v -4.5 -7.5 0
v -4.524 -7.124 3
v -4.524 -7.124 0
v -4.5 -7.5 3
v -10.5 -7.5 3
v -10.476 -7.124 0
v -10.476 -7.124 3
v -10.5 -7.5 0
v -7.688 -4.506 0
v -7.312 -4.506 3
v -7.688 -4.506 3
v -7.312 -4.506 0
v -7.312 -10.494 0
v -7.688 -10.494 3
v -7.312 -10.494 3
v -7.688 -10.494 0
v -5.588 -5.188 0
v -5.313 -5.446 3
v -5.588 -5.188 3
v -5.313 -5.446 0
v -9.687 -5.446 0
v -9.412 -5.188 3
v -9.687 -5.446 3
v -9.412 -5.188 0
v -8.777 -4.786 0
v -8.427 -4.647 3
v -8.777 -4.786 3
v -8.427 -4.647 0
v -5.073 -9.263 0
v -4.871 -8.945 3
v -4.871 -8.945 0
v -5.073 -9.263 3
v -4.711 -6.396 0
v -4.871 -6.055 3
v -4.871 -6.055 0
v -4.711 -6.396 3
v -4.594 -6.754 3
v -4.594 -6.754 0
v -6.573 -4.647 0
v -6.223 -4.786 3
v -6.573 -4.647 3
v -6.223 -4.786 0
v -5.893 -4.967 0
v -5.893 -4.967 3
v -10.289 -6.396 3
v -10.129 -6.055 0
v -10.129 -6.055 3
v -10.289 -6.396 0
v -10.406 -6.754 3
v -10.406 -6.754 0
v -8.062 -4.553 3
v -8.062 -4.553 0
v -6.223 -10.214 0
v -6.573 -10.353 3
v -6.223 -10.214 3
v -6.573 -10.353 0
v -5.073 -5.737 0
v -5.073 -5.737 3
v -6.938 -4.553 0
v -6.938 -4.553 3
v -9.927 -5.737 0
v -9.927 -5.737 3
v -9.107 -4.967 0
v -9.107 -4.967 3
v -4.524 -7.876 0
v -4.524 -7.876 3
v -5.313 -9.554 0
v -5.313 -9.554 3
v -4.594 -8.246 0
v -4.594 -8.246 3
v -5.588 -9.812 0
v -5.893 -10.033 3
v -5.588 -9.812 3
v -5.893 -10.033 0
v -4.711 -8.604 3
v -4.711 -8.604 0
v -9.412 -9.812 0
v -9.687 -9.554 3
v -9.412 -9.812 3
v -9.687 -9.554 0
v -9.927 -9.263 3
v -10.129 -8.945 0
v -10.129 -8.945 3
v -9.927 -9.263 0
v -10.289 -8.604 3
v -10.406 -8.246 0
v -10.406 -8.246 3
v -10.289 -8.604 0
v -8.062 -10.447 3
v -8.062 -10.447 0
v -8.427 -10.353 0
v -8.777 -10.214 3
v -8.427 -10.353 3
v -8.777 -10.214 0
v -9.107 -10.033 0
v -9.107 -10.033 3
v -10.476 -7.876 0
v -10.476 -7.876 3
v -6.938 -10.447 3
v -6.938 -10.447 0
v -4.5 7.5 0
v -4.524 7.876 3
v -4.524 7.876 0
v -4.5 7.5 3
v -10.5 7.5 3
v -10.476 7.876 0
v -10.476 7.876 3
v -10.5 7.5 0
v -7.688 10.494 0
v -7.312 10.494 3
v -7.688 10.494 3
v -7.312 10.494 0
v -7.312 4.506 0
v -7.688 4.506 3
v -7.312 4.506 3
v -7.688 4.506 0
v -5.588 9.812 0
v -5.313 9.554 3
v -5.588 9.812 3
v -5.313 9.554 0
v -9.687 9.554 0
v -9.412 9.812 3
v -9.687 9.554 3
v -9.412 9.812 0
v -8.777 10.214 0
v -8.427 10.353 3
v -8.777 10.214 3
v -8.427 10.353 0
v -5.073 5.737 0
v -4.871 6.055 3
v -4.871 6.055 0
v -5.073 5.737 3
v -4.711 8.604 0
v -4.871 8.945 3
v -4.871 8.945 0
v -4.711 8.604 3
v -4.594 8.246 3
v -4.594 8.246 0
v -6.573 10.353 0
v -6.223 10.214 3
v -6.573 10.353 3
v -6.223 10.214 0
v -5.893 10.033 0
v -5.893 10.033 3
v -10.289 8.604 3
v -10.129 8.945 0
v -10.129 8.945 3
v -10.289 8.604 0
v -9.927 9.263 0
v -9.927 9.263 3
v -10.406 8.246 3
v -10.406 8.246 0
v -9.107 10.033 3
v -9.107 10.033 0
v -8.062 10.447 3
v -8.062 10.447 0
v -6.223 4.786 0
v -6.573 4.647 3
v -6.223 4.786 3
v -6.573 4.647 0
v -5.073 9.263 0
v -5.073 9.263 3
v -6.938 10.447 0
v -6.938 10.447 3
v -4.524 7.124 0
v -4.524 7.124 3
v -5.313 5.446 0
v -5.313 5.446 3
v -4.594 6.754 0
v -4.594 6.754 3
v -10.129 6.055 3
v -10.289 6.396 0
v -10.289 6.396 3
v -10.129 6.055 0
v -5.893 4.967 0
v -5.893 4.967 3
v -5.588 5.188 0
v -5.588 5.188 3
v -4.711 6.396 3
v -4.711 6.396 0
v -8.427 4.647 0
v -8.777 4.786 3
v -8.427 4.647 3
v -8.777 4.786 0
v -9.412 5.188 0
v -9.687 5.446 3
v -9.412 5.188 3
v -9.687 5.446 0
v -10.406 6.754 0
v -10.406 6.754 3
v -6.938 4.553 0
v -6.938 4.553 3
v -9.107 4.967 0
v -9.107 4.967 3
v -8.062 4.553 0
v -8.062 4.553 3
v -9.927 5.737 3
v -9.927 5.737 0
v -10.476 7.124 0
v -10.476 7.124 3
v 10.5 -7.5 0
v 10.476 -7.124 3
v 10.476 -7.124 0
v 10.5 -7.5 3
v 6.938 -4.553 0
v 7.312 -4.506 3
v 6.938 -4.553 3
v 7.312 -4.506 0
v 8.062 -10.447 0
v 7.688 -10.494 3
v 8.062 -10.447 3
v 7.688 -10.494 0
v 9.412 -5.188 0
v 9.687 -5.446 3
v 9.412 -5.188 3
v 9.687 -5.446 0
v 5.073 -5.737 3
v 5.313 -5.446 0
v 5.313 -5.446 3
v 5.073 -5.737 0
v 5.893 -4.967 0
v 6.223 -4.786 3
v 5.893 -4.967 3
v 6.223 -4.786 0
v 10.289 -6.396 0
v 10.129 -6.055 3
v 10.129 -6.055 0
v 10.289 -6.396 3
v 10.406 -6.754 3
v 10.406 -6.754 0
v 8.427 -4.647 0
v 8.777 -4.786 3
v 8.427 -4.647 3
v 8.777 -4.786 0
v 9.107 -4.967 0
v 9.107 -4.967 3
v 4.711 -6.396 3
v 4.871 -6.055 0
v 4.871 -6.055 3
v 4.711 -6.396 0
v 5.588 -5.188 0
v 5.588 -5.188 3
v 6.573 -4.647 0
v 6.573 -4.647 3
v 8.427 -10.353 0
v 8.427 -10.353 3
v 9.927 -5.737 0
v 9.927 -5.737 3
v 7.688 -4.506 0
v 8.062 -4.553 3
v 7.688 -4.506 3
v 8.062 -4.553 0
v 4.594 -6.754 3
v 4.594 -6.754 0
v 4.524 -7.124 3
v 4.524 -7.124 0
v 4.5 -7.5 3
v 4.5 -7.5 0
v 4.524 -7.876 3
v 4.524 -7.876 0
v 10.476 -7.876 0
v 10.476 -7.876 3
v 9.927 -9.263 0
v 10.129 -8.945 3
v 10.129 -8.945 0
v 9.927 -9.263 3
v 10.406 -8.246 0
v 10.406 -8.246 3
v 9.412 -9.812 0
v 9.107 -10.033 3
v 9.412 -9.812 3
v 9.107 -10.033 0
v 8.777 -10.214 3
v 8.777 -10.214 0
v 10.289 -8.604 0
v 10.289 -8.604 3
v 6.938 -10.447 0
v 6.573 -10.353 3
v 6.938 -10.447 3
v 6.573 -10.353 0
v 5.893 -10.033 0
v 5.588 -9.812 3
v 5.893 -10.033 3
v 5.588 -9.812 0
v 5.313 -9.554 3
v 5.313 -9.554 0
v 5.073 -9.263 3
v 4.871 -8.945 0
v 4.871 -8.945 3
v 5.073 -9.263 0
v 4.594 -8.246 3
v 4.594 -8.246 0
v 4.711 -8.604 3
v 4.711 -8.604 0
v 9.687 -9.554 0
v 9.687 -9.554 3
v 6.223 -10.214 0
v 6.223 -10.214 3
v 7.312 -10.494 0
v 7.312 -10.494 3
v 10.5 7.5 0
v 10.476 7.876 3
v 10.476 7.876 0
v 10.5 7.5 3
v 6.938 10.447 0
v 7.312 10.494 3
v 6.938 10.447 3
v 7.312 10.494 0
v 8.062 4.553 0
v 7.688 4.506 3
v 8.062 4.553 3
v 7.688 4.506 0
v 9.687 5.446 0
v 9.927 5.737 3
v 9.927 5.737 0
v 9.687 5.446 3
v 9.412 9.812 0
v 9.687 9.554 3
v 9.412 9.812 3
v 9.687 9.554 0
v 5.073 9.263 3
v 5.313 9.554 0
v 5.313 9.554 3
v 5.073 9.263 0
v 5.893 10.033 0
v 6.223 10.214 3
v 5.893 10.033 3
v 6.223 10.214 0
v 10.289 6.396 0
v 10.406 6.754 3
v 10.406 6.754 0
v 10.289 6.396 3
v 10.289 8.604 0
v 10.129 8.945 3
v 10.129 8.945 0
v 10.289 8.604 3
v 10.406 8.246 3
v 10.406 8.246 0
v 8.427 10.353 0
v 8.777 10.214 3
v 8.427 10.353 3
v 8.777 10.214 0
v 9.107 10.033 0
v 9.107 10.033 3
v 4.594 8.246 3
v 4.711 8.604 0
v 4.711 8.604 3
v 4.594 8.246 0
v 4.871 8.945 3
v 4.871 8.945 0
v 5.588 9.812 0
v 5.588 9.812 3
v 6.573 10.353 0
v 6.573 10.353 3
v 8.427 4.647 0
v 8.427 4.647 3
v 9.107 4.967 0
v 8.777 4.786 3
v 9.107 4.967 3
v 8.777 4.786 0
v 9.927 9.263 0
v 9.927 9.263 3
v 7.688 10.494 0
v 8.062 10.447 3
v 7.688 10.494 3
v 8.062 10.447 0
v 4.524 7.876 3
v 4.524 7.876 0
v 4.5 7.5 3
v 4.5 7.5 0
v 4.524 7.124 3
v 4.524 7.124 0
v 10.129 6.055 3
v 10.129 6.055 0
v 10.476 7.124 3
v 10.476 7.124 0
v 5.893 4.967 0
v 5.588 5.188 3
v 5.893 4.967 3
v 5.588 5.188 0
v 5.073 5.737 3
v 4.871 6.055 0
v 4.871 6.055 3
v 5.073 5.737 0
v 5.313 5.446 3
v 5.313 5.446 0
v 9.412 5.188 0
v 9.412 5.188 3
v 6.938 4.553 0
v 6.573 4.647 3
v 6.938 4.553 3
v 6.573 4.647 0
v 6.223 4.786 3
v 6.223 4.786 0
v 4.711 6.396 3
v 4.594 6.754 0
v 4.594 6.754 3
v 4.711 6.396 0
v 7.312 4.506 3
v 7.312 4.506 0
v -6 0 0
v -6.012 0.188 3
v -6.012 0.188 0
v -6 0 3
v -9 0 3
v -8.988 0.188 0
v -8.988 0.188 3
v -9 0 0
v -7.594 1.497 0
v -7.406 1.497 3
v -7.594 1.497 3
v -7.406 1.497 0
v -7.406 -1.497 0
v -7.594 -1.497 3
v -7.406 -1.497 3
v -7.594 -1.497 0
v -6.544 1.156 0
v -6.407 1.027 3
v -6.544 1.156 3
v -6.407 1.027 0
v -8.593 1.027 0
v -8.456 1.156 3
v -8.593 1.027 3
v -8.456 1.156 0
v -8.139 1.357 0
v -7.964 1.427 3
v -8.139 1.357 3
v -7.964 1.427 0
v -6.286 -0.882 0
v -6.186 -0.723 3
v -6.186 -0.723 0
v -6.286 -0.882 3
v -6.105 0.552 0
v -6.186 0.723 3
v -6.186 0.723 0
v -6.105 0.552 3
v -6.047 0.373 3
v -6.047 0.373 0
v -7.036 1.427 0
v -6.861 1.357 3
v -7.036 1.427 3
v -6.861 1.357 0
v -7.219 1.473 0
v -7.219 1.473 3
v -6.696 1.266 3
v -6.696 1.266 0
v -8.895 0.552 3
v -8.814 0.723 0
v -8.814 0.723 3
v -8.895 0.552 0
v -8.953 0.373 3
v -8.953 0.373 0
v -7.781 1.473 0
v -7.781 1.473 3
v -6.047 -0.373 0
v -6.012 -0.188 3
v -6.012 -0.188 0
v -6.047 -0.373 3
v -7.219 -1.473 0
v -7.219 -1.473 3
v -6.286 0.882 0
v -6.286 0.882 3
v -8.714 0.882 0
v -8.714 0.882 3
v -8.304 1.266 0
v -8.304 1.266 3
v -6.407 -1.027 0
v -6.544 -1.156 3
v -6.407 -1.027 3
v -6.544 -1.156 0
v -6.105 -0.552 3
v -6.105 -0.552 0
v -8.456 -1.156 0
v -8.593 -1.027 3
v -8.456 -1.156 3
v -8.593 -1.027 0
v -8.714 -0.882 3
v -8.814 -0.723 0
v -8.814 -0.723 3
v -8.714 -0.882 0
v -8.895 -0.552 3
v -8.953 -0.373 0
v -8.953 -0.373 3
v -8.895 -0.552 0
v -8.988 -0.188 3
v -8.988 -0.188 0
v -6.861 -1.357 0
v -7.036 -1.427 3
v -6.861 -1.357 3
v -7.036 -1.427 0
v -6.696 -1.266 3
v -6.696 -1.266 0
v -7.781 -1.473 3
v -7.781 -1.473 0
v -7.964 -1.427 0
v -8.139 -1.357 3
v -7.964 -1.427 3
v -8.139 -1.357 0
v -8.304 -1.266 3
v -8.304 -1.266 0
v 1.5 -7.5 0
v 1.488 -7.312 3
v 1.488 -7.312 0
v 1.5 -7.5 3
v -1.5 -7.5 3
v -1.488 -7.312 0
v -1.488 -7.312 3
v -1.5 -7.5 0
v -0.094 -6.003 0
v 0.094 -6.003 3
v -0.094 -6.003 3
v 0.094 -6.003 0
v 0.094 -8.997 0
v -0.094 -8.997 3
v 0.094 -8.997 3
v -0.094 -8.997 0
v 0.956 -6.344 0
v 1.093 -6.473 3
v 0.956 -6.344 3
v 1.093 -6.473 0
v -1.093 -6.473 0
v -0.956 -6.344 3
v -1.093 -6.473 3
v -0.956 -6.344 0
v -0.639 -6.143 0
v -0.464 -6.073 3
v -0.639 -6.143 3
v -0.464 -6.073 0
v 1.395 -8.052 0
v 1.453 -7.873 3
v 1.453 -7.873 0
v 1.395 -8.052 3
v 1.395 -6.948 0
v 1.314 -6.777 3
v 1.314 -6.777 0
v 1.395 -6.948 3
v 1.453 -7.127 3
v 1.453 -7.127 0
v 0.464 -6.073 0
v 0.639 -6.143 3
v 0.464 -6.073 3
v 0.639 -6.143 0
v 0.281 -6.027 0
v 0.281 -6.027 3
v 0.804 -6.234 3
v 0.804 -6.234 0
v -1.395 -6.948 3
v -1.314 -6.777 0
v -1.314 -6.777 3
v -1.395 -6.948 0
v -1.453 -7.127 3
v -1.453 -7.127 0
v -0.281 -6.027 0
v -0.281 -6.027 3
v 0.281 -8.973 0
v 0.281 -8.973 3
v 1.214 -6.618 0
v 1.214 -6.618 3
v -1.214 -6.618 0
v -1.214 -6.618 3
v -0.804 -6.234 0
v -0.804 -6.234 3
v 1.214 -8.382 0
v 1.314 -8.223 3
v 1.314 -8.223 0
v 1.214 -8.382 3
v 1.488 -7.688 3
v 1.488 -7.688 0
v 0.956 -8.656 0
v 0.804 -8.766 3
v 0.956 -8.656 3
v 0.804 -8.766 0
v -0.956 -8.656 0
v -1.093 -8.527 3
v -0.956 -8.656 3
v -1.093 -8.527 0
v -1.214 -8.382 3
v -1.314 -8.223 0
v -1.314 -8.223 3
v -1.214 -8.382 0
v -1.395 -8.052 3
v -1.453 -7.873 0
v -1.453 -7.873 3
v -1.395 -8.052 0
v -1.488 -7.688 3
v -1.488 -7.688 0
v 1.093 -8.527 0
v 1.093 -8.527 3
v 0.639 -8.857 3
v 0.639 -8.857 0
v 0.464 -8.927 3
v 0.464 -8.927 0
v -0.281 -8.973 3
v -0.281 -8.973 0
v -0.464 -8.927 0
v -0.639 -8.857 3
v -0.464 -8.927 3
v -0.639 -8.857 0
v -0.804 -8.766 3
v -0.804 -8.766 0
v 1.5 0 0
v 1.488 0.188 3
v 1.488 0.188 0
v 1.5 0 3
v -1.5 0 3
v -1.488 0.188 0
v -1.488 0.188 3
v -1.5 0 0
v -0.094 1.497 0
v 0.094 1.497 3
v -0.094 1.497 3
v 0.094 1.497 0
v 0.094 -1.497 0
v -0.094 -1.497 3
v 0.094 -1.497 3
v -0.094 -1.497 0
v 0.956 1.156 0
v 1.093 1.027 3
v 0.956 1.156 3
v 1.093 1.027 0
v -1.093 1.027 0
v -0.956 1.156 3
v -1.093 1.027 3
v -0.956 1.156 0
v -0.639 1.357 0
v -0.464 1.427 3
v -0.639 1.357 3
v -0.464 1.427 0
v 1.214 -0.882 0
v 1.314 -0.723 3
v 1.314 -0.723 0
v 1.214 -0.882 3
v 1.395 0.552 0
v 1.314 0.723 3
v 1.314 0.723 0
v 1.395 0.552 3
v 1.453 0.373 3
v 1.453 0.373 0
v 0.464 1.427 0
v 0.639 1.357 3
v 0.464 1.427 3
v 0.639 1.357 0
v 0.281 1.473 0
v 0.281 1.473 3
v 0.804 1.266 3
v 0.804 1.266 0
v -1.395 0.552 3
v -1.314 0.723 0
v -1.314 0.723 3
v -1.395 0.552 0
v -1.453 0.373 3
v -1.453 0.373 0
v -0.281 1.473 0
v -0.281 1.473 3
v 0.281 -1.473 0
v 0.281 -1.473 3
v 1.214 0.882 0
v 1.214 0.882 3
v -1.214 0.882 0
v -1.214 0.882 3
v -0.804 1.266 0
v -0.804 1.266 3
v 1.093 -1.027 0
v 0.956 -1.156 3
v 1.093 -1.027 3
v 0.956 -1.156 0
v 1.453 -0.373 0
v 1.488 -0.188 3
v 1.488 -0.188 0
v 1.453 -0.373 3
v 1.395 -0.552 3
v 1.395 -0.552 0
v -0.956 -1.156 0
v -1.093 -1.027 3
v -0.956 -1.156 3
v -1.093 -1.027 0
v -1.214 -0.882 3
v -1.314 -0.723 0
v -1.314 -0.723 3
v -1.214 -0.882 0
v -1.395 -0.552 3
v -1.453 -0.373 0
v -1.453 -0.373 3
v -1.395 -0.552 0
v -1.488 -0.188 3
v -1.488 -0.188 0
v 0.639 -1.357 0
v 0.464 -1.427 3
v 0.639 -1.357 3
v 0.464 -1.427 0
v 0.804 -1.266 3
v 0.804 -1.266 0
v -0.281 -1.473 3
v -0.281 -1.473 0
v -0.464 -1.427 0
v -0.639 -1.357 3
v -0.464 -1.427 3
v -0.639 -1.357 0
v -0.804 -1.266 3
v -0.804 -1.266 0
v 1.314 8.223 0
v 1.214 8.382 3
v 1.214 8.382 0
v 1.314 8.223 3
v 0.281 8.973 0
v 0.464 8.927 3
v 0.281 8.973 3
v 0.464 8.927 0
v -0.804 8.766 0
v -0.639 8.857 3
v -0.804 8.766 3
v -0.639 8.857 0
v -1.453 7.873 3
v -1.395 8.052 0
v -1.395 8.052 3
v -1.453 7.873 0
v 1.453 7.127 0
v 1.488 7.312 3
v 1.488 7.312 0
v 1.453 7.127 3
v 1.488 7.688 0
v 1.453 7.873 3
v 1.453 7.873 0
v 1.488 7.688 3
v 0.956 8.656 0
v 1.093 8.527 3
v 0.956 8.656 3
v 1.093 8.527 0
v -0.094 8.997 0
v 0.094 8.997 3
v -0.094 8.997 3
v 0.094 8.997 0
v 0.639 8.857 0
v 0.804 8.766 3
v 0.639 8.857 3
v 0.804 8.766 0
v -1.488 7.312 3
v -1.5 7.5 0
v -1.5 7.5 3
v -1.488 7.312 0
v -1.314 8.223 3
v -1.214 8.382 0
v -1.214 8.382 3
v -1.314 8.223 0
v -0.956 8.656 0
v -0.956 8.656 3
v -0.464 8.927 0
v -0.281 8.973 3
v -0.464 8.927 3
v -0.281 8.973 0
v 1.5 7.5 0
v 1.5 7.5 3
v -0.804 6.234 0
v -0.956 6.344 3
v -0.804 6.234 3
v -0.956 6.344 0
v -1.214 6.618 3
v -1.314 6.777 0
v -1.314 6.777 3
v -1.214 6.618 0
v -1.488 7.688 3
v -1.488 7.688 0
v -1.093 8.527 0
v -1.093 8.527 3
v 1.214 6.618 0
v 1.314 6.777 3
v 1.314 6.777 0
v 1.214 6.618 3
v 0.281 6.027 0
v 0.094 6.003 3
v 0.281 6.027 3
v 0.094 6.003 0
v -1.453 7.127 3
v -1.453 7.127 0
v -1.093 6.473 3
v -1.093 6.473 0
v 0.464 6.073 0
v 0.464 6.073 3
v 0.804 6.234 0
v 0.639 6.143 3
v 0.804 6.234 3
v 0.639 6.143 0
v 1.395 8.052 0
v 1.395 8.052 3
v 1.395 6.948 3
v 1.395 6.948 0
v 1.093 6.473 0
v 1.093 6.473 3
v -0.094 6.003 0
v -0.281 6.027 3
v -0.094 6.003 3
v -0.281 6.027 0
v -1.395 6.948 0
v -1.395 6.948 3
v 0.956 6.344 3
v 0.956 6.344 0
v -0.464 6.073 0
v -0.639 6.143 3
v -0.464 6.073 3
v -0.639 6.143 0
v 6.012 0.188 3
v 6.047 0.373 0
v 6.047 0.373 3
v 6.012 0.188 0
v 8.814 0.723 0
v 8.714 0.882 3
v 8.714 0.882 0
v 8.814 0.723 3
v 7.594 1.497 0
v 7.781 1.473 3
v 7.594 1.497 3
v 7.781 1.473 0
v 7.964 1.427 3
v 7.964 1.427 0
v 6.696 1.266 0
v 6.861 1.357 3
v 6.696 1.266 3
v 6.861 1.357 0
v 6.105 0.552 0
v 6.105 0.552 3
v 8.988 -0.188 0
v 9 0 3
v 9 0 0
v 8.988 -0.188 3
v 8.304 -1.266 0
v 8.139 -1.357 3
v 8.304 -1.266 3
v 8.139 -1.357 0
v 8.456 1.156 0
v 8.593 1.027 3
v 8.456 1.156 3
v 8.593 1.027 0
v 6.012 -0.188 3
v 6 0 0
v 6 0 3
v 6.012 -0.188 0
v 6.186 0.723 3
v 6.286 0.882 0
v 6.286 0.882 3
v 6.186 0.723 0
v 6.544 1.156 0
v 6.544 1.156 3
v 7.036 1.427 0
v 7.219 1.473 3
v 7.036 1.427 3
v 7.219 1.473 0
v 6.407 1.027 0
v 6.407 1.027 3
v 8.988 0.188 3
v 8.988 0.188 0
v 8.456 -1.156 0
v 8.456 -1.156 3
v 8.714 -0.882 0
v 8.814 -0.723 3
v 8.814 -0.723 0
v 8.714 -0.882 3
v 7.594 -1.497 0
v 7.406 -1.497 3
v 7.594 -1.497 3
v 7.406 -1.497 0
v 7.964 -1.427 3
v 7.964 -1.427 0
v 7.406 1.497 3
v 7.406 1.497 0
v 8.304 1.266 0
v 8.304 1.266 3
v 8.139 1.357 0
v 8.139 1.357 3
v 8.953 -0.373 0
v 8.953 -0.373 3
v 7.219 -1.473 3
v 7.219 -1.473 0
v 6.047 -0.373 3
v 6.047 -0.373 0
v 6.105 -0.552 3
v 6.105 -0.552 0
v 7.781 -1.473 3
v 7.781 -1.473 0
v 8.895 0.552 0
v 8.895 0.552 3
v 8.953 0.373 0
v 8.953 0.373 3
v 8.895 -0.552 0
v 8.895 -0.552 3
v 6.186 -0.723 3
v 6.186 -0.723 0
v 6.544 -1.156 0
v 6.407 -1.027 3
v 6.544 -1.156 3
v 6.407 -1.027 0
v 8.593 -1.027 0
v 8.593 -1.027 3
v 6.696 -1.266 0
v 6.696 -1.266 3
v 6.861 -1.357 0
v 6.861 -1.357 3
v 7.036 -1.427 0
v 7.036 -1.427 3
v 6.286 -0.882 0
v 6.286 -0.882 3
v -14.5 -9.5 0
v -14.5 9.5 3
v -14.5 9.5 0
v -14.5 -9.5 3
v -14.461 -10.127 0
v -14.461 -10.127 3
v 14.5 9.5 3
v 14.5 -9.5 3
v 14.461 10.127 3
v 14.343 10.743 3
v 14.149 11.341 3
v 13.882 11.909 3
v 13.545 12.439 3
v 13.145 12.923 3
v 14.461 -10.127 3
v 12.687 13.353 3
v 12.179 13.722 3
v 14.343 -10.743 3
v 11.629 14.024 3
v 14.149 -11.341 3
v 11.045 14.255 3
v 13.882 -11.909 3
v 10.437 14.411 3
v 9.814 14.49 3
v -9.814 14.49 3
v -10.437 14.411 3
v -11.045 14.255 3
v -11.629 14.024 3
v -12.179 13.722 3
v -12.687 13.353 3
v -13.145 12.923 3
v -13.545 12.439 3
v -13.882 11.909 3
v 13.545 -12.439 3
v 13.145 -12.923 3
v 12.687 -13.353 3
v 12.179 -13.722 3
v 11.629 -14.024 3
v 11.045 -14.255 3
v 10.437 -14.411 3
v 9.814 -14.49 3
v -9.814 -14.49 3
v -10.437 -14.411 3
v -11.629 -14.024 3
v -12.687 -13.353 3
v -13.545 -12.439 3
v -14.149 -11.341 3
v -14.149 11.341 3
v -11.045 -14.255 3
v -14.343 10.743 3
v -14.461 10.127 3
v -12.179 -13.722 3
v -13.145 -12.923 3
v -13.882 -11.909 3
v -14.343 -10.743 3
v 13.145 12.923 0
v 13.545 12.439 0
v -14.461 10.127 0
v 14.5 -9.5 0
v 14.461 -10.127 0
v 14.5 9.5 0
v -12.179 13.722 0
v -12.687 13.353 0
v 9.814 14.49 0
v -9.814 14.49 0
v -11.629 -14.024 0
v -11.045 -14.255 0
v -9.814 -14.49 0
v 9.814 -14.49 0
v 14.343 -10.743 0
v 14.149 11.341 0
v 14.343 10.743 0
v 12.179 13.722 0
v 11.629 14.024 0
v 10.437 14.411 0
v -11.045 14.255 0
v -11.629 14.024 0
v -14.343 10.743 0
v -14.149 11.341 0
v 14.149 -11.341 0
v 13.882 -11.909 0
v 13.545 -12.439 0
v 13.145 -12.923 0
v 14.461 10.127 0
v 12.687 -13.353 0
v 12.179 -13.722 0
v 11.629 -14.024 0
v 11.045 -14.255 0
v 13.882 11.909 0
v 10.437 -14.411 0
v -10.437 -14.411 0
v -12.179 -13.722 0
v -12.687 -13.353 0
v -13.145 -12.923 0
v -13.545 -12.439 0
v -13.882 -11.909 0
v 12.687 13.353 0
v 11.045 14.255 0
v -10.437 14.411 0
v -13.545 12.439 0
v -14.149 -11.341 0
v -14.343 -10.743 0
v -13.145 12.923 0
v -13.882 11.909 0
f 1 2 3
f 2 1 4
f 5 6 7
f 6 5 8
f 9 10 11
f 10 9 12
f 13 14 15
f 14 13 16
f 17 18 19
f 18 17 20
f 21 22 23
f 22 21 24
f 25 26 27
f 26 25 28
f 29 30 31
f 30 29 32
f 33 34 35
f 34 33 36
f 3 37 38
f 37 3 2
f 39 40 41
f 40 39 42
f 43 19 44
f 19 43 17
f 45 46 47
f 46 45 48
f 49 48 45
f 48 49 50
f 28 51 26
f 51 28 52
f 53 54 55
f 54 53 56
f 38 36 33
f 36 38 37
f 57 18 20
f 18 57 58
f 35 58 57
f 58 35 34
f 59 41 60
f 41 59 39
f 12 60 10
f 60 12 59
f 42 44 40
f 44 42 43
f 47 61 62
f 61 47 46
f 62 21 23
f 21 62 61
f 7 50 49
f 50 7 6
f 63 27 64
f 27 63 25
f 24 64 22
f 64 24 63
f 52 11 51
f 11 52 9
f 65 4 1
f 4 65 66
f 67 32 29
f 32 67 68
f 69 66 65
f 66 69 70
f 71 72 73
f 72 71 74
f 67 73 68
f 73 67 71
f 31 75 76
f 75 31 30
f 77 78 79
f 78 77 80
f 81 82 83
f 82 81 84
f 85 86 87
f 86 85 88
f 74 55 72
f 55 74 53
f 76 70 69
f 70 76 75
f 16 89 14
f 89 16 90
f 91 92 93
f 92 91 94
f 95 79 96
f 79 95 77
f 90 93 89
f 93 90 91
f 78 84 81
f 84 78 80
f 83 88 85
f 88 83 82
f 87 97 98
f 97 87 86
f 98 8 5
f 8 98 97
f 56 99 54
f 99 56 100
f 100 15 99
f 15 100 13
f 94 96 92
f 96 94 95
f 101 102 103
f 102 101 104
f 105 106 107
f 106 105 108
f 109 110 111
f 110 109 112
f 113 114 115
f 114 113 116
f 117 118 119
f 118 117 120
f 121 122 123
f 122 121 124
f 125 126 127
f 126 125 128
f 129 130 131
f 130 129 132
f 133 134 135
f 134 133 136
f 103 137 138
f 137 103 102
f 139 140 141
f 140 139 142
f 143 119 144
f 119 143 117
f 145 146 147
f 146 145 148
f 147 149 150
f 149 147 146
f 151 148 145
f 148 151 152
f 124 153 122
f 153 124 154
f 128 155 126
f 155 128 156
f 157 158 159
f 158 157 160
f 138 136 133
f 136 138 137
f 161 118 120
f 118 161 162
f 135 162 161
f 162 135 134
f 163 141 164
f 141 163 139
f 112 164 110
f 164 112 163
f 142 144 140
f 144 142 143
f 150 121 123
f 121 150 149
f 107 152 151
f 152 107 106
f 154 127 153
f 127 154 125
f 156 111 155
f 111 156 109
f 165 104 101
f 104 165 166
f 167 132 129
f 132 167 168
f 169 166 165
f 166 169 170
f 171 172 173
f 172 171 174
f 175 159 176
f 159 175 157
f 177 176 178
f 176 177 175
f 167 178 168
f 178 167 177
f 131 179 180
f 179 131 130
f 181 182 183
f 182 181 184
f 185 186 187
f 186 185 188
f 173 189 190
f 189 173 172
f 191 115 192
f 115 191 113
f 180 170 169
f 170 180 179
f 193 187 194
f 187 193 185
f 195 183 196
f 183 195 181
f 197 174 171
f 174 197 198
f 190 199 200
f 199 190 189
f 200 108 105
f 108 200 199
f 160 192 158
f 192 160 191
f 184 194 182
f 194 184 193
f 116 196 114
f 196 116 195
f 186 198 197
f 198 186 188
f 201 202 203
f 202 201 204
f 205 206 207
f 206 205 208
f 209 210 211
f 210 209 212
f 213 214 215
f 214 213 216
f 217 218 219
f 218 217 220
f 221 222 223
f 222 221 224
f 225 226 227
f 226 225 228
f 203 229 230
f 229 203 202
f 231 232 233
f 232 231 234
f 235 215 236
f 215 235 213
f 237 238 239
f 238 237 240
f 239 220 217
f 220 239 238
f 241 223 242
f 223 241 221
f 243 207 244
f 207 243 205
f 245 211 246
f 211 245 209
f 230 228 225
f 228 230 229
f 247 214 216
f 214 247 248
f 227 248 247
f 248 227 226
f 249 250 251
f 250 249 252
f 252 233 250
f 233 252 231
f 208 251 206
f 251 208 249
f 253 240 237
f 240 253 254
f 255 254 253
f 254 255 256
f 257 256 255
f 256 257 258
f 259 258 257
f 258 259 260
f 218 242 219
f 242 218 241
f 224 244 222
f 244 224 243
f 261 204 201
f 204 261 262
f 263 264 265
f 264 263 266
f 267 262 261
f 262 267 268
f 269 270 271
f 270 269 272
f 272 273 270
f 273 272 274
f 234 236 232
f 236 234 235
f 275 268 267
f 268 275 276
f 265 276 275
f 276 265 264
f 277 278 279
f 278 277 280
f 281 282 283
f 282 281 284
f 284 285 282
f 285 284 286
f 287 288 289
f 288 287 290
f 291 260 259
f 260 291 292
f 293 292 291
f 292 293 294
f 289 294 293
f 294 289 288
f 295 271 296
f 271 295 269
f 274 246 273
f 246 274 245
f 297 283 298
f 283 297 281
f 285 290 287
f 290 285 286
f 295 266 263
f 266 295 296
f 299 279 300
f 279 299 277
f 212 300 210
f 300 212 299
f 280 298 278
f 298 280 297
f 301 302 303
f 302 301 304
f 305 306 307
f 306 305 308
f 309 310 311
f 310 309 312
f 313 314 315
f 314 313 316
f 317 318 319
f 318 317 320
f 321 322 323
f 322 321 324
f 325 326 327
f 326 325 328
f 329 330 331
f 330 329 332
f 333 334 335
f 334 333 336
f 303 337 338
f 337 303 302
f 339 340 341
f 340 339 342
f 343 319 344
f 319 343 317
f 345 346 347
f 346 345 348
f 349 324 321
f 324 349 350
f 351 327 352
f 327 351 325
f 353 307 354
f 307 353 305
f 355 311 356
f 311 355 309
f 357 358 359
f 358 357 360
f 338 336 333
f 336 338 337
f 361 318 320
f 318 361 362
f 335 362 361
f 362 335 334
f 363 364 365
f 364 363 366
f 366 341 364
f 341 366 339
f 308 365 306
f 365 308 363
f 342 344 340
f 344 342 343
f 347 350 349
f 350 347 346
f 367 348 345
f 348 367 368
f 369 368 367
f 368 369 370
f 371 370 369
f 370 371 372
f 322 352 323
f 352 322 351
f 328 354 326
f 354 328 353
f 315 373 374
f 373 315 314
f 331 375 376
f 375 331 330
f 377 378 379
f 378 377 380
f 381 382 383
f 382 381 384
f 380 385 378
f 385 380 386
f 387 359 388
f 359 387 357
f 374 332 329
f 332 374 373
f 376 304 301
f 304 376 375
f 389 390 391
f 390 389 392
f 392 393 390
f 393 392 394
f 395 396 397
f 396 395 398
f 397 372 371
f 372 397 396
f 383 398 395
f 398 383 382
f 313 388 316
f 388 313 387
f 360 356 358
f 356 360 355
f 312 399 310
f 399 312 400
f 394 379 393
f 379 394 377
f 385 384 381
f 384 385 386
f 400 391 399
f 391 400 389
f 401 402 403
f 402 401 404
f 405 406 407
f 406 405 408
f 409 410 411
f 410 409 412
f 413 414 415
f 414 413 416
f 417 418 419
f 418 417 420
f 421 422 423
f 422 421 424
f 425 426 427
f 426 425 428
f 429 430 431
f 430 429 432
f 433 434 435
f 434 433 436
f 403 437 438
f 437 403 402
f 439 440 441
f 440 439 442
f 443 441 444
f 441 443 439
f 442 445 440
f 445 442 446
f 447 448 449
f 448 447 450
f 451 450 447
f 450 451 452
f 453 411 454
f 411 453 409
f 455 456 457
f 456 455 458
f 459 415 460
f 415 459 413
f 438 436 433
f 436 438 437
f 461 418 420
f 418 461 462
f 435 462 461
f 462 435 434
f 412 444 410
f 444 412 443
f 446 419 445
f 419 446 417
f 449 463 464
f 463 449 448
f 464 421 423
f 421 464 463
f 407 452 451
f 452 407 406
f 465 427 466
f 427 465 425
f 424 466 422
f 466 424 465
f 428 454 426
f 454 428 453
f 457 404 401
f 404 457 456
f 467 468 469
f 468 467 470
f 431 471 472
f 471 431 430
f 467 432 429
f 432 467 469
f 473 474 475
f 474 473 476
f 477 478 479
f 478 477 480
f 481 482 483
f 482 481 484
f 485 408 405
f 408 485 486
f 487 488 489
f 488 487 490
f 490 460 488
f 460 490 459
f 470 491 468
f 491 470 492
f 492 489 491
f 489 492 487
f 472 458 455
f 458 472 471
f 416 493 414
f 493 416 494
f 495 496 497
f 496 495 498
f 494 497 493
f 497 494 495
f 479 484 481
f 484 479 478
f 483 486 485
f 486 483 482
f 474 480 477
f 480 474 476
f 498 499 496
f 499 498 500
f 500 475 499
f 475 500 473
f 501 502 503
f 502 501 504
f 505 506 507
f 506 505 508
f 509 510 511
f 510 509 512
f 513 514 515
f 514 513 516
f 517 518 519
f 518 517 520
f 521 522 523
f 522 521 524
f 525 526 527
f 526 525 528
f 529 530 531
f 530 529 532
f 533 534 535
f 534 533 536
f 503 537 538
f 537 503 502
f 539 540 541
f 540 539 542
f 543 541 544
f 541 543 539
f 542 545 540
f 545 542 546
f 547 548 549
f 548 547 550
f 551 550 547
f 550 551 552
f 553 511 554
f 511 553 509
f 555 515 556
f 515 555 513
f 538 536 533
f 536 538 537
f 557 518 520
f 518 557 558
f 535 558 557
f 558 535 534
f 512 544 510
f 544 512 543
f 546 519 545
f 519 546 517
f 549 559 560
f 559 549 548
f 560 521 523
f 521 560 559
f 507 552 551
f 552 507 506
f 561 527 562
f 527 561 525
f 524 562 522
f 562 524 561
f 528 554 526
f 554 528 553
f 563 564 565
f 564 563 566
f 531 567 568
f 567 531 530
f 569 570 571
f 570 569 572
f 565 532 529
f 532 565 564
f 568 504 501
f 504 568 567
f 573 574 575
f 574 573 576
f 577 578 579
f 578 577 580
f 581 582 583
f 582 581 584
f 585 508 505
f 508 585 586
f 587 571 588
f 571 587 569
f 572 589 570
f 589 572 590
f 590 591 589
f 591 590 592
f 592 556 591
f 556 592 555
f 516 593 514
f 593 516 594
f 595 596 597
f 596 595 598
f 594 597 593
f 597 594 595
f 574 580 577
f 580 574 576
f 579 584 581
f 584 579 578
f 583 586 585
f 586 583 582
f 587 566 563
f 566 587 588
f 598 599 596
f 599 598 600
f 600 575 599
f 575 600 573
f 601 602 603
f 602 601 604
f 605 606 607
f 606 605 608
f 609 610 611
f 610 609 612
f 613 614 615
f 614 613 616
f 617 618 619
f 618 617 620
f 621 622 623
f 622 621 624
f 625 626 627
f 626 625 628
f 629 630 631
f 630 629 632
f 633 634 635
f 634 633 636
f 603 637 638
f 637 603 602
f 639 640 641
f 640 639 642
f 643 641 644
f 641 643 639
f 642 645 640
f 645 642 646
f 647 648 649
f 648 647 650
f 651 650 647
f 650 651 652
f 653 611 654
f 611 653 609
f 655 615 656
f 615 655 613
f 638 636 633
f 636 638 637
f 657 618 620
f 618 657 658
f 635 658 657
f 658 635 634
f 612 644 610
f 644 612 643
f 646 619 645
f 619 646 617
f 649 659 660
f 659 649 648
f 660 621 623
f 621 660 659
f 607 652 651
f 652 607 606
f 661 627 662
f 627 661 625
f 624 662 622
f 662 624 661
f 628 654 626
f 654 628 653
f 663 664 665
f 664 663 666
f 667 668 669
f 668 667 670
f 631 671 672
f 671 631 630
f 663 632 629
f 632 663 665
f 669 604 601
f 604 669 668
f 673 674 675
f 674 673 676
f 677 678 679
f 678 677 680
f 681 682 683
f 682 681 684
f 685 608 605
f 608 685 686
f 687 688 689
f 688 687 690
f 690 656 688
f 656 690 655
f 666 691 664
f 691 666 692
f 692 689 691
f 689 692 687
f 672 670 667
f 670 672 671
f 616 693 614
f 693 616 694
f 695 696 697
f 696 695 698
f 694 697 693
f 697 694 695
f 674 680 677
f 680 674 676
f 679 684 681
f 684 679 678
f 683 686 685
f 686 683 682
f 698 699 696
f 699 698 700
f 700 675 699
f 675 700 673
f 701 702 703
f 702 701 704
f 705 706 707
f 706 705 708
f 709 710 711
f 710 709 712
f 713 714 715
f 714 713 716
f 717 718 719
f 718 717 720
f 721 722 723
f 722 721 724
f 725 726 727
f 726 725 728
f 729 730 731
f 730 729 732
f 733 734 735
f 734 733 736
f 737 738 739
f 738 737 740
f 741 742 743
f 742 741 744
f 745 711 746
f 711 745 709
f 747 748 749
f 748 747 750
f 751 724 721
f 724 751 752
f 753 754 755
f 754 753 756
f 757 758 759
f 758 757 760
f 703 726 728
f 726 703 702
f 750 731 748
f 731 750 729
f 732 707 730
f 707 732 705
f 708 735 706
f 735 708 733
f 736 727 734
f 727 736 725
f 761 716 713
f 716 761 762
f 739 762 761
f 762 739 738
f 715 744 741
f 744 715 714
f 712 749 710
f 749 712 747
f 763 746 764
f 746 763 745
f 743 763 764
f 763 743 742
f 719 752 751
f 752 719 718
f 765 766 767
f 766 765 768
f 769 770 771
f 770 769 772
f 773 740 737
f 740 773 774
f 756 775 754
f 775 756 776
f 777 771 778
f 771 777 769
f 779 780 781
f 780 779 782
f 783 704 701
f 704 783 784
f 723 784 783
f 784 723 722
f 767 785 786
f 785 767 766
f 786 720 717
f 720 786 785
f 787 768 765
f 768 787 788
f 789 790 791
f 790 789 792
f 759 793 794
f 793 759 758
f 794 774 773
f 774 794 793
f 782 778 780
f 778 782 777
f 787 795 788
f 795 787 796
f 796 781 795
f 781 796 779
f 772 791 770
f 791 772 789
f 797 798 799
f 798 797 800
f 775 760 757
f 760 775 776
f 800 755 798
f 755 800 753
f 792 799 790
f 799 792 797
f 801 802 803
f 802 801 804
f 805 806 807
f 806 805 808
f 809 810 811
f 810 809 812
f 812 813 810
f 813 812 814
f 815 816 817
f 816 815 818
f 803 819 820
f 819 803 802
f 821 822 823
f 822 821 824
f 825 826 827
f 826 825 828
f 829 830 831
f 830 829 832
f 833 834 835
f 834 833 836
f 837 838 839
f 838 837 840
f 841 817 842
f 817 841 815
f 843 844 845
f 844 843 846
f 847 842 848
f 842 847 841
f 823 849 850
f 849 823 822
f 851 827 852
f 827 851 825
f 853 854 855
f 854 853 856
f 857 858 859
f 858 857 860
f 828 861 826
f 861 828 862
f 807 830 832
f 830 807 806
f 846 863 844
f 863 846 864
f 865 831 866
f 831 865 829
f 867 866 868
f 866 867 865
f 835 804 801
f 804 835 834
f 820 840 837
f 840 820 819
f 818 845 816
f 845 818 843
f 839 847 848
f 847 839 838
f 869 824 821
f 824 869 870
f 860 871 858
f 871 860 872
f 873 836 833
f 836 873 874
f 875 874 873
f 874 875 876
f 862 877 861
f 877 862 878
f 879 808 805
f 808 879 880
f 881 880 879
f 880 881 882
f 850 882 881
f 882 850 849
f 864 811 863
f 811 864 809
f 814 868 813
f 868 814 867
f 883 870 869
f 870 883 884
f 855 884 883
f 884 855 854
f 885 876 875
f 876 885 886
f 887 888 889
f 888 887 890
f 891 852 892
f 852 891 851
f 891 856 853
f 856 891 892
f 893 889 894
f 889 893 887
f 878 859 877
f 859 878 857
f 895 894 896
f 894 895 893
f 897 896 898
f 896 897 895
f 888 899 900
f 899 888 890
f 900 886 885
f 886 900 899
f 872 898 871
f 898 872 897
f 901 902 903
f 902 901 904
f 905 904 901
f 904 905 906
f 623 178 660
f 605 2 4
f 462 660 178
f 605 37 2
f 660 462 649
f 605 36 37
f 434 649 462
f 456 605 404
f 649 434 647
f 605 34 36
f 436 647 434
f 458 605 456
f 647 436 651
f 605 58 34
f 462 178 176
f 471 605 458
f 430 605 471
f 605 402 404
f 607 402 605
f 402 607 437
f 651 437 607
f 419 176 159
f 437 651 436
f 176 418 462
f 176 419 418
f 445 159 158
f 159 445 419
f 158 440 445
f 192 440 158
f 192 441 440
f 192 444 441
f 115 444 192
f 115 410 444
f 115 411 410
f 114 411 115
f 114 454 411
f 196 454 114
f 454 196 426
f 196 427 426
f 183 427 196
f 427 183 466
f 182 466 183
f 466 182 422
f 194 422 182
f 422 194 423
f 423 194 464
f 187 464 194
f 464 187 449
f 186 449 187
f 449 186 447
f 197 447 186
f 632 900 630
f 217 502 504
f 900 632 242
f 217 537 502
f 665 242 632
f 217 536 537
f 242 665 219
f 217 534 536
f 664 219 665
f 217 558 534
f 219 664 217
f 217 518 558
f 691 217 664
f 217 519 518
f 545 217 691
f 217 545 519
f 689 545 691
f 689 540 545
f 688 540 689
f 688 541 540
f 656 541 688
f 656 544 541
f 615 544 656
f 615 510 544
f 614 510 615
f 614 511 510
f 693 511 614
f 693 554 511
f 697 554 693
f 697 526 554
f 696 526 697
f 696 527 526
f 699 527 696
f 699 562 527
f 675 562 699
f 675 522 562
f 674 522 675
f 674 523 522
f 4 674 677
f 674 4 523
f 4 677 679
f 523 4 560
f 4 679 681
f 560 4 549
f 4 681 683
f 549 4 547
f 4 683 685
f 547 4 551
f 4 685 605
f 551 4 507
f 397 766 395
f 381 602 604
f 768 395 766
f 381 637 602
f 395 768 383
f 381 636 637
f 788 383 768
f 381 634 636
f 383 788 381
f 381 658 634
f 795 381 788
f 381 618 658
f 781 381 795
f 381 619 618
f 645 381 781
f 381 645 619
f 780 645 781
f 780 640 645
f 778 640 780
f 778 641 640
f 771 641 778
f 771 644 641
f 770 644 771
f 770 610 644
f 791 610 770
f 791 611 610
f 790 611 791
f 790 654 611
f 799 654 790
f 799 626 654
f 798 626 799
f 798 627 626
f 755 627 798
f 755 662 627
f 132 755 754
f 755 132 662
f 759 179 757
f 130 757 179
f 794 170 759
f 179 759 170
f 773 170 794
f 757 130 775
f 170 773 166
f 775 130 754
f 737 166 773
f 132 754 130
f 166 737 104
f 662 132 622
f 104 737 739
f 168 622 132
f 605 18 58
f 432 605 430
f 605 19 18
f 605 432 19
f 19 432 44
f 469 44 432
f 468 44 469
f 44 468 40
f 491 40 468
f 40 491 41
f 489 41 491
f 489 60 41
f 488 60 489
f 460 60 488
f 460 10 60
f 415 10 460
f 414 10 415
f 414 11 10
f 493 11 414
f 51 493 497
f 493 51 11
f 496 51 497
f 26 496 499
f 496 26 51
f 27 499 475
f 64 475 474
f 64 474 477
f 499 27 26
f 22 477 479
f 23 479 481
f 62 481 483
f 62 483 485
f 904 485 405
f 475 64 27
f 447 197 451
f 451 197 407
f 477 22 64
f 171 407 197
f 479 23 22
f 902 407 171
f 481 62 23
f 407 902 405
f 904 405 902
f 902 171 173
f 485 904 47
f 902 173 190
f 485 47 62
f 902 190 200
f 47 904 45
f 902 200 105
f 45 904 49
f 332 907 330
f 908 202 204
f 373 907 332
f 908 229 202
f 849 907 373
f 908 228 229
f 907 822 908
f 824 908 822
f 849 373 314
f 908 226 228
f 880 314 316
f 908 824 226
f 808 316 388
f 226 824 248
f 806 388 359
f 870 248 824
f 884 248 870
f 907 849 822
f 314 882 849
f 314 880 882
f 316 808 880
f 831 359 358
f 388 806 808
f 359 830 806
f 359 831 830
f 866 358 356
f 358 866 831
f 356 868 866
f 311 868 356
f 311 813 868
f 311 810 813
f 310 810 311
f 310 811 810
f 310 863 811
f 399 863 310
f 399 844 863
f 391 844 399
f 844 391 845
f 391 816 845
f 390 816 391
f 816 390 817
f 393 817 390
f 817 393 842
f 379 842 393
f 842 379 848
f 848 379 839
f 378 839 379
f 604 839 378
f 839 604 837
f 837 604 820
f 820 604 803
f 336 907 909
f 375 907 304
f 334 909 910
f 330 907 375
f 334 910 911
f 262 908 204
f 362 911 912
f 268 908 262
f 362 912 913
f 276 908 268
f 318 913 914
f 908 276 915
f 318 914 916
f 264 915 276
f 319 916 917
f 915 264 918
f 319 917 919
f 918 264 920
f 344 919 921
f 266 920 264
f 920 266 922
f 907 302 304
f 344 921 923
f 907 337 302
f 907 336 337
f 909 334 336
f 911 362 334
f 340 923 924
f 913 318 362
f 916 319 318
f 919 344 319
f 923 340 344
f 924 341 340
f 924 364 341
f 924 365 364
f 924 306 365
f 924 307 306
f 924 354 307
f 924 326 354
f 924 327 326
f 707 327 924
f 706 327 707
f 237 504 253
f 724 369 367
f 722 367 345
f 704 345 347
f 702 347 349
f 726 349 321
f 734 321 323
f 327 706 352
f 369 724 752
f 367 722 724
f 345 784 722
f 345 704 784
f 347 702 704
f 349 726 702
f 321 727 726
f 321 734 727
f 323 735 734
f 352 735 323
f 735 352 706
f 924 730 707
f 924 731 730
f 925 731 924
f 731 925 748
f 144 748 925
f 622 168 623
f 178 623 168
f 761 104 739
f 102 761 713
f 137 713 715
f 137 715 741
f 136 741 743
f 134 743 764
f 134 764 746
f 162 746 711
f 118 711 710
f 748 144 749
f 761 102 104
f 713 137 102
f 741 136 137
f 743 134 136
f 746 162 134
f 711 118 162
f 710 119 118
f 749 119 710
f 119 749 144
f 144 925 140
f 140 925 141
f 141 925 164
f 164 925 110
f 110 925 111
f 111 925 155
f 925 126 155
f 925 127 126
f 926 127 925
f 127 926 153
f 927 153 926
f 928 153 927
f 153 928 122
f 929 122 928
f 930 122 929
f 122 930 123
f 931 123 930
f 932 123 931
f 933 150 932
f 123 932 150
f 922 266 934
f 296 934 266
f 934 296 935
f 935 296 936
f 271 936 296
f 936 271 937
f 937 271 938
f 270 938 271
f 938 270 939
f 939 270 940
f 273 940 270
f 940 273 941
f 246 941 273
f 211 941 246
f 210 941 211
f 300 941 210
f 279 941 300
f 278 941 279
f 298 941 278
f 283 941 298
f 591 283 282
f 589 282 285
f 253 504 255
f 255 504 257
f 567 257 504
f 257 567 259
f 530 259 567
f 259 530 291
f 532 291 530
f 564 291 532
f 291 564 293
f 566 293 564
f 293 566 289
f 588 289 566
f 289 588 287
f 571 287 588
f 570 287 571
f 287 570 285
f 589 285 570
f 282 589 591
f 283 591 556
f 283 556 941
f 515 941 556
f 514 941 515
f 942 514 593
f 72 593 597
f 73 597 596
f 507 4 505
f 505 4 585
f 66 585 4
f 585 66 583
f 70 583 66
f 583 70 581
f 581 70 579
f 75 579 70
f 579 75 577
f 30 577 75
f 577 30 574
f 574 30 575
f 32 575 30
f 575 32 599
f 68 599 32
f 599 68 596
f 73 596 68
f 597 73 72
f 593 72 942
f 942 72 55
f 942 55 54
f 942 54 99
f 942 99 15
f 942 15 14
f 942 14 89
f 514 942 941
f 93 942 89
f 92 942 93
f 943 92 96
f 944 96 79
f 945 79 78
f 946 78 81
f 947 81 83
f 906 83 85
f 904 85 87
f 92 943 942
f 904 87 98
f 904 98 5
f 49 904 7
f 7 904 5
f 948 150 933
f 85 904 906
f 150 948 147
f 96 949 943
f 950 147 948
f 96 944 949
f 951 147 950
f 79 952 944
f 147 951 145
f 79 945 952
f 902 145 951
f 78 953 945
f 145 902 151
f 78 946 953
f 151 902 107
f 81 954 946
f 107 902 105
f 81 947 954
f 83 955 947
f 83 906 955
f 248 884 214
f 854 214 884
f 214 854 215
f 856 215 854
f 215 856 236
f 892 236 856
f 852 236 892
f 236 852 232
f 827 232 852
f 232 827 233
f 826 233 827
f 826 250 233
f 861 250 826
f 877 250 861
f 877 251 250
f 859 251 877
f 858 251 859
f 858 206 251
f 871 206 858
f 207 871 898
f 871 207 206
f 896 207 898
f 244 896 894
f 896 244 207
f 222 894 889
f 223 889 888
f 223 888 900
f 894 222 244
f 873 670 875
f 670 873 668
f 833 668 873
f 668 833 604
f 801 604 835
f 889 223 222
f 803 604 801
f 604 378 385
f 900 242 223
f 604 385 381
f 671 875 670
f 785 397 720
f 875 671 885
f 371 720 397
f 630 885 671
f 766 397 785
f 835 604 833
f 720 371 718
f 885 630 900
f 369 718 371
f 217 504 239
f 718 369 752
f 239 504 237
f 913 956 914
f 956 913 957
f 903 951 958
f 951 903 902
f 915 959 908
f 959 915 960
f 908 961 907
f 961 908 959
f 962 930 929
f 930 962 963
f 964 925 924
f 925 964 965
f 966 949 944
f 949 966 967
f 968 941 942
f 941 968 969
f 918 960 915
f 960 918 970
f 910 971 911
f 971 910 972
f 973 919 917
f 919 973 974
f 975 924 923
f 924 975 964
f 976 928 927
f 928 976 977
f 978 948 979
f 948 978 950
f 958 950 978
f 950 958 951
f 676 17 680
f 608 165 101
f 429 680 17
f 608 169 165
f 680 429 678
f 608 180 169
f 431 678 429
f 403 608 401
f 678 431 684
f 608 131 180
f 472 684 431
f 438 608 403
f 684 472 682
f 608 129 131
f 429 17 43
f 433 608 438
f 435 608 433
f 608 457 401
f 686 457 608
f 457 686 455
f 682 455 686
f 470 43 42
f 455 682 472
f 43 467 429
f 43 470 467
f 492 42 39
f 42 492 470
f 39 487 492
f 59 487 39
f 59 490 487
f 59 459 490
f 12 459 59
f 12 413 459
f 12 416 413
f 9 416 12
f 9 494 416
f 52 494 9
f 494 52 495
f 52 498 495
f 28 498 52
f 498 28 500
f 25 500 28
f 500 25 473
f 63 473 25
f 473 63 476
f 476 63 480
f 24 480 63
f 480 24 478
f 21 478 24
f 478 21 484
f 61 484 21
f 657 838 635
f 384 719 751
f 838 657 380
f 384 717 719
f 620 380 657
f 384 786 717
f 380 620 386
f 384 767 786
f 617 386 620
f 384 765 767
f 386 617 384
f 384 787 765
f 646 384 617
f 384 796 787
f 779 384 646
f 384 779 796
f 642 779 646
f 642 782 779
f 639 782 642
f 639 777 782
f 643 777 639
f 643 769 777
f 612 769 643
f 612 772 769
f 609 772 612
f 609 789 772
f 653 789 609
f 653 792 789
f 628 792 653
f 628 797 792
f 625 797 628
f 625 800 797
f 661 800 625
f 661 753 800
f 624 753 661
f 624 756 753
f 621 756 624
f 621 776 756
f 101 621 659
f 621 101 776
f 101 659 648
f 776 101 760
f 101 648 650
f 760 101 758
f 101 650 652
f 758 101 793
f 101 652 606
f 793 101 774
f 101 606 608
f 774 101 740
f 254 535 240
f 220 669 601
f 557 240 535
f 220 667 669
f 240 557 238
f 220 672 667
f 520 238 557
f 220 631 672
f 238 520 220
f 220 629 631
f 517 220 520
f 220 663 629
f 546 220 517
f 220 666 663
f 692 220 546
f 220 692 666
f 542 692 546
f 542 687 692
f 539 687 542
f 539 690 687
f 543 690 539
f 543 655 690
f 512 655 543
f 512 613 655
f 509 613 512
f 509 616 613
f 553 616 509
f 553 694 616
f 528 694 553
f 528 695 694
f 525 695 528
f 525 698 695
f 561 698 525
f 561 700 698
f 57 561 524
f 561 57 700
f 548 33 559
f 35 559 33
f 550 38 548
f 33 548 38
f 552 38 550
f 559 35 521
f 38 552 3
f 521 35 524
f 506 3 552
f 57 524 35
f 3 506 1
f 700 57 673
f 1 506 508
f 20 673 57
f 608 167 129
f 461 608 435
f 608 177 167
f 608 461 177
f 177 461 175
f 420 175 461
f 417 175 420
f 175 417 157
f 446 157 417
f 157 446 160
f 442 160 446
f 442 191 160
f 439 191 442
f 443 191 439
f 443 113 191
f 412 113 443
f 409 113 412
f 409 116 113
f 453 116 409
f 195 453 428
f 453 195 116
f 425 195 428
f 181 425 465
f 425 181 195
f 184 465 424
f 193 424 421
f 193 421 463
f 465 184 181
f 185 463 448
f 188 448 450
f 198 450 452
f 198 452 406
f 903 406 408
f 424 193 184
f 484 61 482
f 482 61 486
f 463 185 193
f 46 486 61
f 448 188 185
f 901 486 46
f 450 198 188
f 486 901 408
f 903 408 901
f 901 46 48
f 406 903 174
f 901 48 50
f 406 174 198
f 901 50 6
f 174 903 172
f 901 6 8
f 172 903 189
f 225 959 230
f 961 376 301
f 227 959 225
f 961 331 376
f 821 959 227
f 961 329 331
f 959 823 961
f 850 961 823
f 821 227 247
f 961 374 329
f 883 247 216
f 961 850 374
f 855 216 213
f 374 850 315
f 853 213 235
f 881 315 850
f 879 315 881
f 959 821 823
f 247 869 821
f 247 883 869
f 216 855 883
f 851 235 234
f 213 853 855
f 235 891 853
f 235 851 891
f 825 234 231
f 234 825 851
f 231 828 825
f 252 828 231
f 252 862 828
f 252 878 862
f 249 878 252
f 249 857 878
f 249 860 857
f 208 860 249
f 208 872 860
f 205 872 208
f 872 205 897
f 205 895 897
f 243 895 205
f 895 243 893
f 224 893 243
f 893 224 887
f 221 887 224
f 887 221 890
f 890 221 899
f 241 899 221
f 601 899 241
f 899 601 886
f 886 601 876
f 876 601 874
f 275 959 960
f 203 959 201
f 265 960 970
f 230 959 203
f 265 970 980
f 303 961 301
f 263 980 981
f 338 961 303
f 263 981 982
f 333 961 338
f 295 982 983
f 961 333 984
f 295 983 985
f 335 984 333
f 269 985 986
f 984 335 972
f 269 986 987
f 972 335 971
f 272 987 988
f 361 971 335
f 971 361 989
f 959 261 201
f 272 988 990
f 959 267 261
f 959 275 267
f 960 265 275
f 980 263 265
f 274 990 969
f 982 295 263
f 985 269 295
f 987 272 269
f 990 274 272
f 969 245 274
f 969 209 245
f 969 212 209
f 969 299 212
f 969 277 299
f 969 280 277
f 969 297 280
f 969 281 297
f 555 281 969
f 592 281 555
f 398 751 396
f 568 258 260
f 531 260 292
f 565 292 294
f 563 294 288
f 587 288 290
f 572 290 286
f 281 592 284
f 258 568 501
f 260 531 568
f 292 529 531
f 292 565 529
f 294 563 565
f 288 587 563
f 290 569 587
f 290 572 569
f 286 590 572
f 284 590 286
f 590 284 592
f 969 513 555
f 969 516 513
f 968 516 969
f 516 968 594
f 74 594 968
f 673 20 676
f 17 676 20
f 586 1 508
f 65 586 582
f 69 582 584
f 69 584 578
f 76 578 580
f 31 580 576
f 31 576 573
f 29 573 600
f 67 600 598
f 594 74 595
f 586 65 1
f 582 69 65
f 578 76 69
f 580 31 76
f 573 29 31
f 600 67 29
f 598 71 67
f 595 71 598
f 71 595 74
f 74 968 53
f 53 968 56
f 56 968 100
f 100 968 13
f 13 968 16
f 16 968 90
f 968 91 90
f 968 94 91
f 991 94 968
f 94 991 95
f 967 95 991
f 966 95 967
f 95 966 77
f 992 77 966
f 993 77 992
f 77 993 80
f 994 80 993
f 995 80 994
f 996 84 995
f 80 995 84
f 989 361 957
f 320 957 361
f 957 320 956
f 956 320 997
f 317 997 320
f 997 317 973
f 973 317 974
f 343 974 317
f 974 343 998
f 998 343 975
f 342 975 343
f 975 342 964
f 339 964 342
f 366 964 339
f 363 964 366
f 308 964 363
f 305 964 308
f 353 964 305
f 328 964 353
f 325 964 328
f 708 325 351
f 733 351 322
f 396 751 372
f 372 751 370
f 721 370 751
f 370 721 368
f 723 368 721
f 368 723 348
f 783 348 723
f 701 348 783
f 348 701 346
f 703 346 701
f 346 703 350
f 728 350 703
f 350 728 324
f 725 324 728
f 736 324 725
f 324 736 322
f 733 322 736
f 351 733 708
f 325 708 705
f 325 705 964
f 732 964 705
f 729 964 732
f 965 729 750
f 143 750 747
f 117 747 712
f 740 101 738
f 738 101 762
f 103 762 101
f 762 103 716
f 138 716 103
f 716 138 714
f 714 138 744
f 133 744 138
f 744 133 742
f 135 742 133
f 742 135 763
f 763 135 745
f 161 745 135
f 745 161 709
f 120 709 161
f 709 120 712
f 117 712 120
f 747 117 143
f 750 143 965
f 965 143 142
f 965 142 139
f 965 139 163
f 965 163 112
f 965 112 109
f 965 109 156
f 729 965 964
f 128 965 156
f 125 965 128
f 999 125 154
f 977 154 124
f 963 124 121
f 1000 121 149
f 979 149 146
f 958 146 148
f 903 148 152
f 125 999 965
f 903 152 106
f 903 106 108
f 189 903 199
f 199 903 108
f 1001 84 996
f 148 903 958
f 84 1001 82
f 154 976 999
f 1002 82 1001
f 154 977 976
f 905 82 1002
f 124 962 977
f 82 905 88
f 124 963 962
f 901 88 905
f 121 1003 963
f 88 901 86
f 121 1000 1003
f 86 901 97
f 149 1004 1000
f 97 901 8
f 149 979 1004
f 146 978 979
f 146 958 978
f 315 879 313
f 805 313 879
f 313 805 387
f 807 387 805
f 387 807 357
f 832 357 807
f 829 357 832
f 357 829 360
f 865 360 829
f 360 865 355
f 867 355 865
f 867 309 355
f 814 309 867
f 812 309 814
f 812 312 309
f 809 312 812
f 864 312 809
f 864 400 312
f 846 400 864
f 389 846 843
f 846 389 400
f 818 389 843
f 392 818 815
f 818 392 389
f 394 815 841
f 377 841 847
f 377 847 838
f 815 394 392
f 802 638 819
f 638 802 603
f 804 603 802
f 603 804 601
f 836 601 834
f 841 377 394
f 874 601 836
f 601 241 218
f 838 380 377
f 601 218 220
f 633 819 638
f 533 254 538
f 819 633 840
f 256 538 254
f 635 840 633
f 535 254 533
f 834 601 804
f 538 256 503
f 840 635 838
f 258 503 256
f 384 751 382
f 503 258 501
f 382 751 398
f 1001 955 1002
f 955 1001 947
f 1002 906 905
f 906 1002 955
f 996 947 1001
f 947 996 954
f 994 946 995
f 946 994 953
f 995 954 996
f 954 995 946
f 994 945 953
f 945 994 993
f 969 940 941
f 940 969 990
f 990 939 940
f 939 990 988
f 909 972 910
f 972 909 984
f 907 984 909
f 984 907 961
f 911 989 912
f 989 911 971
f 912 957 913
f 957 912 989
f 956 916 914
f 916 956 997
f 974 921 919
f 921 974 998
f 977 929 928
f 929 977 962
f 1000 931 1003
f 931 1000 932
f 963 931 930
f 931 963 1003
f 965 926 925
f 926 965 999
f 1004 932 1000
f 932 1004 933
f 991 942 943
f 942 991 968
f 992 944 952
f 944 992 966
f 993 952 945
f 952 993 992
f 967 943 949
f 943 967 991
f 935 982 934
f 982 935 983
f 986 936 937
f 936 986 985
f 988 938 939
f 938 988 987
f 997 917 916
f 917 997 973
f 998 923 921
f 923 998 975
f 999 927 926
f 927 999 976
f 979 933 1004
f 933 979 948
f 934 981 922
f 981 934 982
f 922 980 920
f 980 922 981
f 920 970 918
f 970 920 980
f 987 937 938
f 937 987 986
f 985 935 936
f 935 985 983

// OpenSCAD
$fn = 50;


difference() {
	union() {
		translate(v = [0, 0, 0]) {
			rotate(a = [0, 0, 0]) {
				hull() {
					translate(v = [-9.5000000000, 9.5000000000, 0]) {
						rotate(a = [0, 0, 0]) {
							translate(v = [0, 0, 0]) {
								rotate(a = [0, 0, 0]) {
									cylinder(h = 3, r = 5);
								}
							}
						}
					}
					translate(v = [9.5000000000, 9.5000000000, 0]) {
						rotate(a = [0, 0, 0]) {
							translate(v = [0, 0, 0]) {
								rotate(a = [0, 0, 0]) {
									cylinder(h = 3, r = 5);
								}
							}
						}
					}
					translate(v = [-9.5000000000, -9.5000000000, 0]) {
						rotate(a = [0, 0, 0]) {
							translate(v = [0, 0, 0]) {
								rotate(a = [0, 0, 0]) {
									cylinder(h = 3, r = 5);
								}
							}
						}
					}
					translate(v = [9.5000000000, -9.5000000000, 0]) {
						rotate(a = [0, 0, 0]) {
							translate(v = [0, 0, 0]) {
								rotate(a = [0, 0, 0]) {
									cylinder(h = 3, r = 5);
								}
							}
						}
					}
				}
			}
		}
	}
	union() {
		translate(v = [-7.5000000000, -7.5000000000, 0]) {
			rotate(a = [0, 0, 0]) {
				translate(v = [0, 0, -50]) {
					rotate(a = [0, 0, 0]) {
						cylinder(h = 100, r = 3.0000000000);
					}
				}
			}
		}
		translate(v = [-7.5000000000, 7.5000000000, 0]) {
			rotate(a = [0, 0, 0]) {
				translate(v = [0, 0, -50]) {
					rotate(a = [0, 0, 0]) {
						cylinder(h = 100, r = 3.0000000000);
					}
				}
			}
		}
		translate(v = [7.5000000000, -7.5000000000, 0]) {
			rotate(a = [0, 0, 0]) {
				translate(v = [0, 0, -50]) {
					rotate(a = [0, 0, 0]) {
						cylinder(h = 100, r = 3.0000000000);
					}
				}
			}
		}
		translate(v = [7.5000000000, 7.5000000000, 0]) {
			rotate(a = [0, 0, 0]) {
				translate(v = [0, 0, -50]) {
					rotate(a = [0, 0, 0]) {
						cylinder(h = 100, r = 3.0000000000);
					}
				}
			}
		}
		translate(v = [-7.5000000000, -7.5000000000, 0]) {
			rotate(a = [0, 0, 0]) {
				translate(v = [0, 0, -50]) {
					rotate(a = [0, 0, 0]) {
						cylinder(h = 100, r = 1.5000000000);
					}
				}
			}
		}
		translate(v = [-7.5000000000, 0.0000000000, 0]) {
			rotate(a = [0, 0, 0]) {
				translate(v = [0, 0, -50]) {
					rotate(a = [0, 0, 0]) {
						cylinder(h = 100, r = 1.5000000000);
					}
				}
			}
		}
		translate(v = [-7.5000000000, 7.5000000000, 0]) {
			rotate(a = [0, 0, 0]) {
				translate(v = [0, 0, -50]) {
					rotate(a = [0, 0, 0]) {
						cylinder(h = 100, r = 1.5000000000);
					}
				}
			}
		}
		translate(v = [0.0000000000, -7.5000000000, 0]) {
			rotate(a = [0, 0, 0]) {
				translate(v = [0, 0, -50]) {
					rotate(a = [0, 0, 0]) {
						cylinder(h = 100, r = 1.5000000000);
					}
				}
			}
		}
		translate(v = [0.0000000000, 0.0000000000, 0]) {
			rotate(a = [0, 0, 0]) {
				translate(v = [0, 0, -50]) {
					rotate(a = [0, 0, 0]) {
						cylinder(h = 100, r = 1.5000000000);
					}
				}
			}
		}
		translate(v = [0.0000000000, 7.5000000000, 0]) {
			rotate(a = [0, 0, 0]) {
				translate(v = [0, 0, -50]) {
					rotate(a = [0, 0, 0]) {
						cylinder(h = 100, r = 1.5000000000);
					}
				}
			}
		}
		translate(v = [7.5000000000, -7.5000000000, 0]) {
			rotate(a = [0, 0, 0]) {
				translate(v = [0, 0, -50]) {
					rotate(a = [0, 0, 0]) {
						cylinder(h = 100, r = 1.5000000000);
					}
				}
			}
		}
		translate(v = [7.5000000000, 0.0000000000, 0]) {
			rotate(a = [0, 0, 0]) {
				translate(v = [0, 0, -50]) {
					rotate(a = [0, 0, 0]) {
						cylinder(h = 100, r = 1.5000000000);
					}
				}
			}
		}
		translate(v = [7.5000000000, 7.5000000000, 0]) {
			rotate(a = [0, 0, 0]) {
				translate(v = [0, 0, -50]) {
					rotate(a = [0, 0, 0]) {
						cylinder(h = 100, r = 1.5000000000);
					}
				}
			}
		}
	}
}
